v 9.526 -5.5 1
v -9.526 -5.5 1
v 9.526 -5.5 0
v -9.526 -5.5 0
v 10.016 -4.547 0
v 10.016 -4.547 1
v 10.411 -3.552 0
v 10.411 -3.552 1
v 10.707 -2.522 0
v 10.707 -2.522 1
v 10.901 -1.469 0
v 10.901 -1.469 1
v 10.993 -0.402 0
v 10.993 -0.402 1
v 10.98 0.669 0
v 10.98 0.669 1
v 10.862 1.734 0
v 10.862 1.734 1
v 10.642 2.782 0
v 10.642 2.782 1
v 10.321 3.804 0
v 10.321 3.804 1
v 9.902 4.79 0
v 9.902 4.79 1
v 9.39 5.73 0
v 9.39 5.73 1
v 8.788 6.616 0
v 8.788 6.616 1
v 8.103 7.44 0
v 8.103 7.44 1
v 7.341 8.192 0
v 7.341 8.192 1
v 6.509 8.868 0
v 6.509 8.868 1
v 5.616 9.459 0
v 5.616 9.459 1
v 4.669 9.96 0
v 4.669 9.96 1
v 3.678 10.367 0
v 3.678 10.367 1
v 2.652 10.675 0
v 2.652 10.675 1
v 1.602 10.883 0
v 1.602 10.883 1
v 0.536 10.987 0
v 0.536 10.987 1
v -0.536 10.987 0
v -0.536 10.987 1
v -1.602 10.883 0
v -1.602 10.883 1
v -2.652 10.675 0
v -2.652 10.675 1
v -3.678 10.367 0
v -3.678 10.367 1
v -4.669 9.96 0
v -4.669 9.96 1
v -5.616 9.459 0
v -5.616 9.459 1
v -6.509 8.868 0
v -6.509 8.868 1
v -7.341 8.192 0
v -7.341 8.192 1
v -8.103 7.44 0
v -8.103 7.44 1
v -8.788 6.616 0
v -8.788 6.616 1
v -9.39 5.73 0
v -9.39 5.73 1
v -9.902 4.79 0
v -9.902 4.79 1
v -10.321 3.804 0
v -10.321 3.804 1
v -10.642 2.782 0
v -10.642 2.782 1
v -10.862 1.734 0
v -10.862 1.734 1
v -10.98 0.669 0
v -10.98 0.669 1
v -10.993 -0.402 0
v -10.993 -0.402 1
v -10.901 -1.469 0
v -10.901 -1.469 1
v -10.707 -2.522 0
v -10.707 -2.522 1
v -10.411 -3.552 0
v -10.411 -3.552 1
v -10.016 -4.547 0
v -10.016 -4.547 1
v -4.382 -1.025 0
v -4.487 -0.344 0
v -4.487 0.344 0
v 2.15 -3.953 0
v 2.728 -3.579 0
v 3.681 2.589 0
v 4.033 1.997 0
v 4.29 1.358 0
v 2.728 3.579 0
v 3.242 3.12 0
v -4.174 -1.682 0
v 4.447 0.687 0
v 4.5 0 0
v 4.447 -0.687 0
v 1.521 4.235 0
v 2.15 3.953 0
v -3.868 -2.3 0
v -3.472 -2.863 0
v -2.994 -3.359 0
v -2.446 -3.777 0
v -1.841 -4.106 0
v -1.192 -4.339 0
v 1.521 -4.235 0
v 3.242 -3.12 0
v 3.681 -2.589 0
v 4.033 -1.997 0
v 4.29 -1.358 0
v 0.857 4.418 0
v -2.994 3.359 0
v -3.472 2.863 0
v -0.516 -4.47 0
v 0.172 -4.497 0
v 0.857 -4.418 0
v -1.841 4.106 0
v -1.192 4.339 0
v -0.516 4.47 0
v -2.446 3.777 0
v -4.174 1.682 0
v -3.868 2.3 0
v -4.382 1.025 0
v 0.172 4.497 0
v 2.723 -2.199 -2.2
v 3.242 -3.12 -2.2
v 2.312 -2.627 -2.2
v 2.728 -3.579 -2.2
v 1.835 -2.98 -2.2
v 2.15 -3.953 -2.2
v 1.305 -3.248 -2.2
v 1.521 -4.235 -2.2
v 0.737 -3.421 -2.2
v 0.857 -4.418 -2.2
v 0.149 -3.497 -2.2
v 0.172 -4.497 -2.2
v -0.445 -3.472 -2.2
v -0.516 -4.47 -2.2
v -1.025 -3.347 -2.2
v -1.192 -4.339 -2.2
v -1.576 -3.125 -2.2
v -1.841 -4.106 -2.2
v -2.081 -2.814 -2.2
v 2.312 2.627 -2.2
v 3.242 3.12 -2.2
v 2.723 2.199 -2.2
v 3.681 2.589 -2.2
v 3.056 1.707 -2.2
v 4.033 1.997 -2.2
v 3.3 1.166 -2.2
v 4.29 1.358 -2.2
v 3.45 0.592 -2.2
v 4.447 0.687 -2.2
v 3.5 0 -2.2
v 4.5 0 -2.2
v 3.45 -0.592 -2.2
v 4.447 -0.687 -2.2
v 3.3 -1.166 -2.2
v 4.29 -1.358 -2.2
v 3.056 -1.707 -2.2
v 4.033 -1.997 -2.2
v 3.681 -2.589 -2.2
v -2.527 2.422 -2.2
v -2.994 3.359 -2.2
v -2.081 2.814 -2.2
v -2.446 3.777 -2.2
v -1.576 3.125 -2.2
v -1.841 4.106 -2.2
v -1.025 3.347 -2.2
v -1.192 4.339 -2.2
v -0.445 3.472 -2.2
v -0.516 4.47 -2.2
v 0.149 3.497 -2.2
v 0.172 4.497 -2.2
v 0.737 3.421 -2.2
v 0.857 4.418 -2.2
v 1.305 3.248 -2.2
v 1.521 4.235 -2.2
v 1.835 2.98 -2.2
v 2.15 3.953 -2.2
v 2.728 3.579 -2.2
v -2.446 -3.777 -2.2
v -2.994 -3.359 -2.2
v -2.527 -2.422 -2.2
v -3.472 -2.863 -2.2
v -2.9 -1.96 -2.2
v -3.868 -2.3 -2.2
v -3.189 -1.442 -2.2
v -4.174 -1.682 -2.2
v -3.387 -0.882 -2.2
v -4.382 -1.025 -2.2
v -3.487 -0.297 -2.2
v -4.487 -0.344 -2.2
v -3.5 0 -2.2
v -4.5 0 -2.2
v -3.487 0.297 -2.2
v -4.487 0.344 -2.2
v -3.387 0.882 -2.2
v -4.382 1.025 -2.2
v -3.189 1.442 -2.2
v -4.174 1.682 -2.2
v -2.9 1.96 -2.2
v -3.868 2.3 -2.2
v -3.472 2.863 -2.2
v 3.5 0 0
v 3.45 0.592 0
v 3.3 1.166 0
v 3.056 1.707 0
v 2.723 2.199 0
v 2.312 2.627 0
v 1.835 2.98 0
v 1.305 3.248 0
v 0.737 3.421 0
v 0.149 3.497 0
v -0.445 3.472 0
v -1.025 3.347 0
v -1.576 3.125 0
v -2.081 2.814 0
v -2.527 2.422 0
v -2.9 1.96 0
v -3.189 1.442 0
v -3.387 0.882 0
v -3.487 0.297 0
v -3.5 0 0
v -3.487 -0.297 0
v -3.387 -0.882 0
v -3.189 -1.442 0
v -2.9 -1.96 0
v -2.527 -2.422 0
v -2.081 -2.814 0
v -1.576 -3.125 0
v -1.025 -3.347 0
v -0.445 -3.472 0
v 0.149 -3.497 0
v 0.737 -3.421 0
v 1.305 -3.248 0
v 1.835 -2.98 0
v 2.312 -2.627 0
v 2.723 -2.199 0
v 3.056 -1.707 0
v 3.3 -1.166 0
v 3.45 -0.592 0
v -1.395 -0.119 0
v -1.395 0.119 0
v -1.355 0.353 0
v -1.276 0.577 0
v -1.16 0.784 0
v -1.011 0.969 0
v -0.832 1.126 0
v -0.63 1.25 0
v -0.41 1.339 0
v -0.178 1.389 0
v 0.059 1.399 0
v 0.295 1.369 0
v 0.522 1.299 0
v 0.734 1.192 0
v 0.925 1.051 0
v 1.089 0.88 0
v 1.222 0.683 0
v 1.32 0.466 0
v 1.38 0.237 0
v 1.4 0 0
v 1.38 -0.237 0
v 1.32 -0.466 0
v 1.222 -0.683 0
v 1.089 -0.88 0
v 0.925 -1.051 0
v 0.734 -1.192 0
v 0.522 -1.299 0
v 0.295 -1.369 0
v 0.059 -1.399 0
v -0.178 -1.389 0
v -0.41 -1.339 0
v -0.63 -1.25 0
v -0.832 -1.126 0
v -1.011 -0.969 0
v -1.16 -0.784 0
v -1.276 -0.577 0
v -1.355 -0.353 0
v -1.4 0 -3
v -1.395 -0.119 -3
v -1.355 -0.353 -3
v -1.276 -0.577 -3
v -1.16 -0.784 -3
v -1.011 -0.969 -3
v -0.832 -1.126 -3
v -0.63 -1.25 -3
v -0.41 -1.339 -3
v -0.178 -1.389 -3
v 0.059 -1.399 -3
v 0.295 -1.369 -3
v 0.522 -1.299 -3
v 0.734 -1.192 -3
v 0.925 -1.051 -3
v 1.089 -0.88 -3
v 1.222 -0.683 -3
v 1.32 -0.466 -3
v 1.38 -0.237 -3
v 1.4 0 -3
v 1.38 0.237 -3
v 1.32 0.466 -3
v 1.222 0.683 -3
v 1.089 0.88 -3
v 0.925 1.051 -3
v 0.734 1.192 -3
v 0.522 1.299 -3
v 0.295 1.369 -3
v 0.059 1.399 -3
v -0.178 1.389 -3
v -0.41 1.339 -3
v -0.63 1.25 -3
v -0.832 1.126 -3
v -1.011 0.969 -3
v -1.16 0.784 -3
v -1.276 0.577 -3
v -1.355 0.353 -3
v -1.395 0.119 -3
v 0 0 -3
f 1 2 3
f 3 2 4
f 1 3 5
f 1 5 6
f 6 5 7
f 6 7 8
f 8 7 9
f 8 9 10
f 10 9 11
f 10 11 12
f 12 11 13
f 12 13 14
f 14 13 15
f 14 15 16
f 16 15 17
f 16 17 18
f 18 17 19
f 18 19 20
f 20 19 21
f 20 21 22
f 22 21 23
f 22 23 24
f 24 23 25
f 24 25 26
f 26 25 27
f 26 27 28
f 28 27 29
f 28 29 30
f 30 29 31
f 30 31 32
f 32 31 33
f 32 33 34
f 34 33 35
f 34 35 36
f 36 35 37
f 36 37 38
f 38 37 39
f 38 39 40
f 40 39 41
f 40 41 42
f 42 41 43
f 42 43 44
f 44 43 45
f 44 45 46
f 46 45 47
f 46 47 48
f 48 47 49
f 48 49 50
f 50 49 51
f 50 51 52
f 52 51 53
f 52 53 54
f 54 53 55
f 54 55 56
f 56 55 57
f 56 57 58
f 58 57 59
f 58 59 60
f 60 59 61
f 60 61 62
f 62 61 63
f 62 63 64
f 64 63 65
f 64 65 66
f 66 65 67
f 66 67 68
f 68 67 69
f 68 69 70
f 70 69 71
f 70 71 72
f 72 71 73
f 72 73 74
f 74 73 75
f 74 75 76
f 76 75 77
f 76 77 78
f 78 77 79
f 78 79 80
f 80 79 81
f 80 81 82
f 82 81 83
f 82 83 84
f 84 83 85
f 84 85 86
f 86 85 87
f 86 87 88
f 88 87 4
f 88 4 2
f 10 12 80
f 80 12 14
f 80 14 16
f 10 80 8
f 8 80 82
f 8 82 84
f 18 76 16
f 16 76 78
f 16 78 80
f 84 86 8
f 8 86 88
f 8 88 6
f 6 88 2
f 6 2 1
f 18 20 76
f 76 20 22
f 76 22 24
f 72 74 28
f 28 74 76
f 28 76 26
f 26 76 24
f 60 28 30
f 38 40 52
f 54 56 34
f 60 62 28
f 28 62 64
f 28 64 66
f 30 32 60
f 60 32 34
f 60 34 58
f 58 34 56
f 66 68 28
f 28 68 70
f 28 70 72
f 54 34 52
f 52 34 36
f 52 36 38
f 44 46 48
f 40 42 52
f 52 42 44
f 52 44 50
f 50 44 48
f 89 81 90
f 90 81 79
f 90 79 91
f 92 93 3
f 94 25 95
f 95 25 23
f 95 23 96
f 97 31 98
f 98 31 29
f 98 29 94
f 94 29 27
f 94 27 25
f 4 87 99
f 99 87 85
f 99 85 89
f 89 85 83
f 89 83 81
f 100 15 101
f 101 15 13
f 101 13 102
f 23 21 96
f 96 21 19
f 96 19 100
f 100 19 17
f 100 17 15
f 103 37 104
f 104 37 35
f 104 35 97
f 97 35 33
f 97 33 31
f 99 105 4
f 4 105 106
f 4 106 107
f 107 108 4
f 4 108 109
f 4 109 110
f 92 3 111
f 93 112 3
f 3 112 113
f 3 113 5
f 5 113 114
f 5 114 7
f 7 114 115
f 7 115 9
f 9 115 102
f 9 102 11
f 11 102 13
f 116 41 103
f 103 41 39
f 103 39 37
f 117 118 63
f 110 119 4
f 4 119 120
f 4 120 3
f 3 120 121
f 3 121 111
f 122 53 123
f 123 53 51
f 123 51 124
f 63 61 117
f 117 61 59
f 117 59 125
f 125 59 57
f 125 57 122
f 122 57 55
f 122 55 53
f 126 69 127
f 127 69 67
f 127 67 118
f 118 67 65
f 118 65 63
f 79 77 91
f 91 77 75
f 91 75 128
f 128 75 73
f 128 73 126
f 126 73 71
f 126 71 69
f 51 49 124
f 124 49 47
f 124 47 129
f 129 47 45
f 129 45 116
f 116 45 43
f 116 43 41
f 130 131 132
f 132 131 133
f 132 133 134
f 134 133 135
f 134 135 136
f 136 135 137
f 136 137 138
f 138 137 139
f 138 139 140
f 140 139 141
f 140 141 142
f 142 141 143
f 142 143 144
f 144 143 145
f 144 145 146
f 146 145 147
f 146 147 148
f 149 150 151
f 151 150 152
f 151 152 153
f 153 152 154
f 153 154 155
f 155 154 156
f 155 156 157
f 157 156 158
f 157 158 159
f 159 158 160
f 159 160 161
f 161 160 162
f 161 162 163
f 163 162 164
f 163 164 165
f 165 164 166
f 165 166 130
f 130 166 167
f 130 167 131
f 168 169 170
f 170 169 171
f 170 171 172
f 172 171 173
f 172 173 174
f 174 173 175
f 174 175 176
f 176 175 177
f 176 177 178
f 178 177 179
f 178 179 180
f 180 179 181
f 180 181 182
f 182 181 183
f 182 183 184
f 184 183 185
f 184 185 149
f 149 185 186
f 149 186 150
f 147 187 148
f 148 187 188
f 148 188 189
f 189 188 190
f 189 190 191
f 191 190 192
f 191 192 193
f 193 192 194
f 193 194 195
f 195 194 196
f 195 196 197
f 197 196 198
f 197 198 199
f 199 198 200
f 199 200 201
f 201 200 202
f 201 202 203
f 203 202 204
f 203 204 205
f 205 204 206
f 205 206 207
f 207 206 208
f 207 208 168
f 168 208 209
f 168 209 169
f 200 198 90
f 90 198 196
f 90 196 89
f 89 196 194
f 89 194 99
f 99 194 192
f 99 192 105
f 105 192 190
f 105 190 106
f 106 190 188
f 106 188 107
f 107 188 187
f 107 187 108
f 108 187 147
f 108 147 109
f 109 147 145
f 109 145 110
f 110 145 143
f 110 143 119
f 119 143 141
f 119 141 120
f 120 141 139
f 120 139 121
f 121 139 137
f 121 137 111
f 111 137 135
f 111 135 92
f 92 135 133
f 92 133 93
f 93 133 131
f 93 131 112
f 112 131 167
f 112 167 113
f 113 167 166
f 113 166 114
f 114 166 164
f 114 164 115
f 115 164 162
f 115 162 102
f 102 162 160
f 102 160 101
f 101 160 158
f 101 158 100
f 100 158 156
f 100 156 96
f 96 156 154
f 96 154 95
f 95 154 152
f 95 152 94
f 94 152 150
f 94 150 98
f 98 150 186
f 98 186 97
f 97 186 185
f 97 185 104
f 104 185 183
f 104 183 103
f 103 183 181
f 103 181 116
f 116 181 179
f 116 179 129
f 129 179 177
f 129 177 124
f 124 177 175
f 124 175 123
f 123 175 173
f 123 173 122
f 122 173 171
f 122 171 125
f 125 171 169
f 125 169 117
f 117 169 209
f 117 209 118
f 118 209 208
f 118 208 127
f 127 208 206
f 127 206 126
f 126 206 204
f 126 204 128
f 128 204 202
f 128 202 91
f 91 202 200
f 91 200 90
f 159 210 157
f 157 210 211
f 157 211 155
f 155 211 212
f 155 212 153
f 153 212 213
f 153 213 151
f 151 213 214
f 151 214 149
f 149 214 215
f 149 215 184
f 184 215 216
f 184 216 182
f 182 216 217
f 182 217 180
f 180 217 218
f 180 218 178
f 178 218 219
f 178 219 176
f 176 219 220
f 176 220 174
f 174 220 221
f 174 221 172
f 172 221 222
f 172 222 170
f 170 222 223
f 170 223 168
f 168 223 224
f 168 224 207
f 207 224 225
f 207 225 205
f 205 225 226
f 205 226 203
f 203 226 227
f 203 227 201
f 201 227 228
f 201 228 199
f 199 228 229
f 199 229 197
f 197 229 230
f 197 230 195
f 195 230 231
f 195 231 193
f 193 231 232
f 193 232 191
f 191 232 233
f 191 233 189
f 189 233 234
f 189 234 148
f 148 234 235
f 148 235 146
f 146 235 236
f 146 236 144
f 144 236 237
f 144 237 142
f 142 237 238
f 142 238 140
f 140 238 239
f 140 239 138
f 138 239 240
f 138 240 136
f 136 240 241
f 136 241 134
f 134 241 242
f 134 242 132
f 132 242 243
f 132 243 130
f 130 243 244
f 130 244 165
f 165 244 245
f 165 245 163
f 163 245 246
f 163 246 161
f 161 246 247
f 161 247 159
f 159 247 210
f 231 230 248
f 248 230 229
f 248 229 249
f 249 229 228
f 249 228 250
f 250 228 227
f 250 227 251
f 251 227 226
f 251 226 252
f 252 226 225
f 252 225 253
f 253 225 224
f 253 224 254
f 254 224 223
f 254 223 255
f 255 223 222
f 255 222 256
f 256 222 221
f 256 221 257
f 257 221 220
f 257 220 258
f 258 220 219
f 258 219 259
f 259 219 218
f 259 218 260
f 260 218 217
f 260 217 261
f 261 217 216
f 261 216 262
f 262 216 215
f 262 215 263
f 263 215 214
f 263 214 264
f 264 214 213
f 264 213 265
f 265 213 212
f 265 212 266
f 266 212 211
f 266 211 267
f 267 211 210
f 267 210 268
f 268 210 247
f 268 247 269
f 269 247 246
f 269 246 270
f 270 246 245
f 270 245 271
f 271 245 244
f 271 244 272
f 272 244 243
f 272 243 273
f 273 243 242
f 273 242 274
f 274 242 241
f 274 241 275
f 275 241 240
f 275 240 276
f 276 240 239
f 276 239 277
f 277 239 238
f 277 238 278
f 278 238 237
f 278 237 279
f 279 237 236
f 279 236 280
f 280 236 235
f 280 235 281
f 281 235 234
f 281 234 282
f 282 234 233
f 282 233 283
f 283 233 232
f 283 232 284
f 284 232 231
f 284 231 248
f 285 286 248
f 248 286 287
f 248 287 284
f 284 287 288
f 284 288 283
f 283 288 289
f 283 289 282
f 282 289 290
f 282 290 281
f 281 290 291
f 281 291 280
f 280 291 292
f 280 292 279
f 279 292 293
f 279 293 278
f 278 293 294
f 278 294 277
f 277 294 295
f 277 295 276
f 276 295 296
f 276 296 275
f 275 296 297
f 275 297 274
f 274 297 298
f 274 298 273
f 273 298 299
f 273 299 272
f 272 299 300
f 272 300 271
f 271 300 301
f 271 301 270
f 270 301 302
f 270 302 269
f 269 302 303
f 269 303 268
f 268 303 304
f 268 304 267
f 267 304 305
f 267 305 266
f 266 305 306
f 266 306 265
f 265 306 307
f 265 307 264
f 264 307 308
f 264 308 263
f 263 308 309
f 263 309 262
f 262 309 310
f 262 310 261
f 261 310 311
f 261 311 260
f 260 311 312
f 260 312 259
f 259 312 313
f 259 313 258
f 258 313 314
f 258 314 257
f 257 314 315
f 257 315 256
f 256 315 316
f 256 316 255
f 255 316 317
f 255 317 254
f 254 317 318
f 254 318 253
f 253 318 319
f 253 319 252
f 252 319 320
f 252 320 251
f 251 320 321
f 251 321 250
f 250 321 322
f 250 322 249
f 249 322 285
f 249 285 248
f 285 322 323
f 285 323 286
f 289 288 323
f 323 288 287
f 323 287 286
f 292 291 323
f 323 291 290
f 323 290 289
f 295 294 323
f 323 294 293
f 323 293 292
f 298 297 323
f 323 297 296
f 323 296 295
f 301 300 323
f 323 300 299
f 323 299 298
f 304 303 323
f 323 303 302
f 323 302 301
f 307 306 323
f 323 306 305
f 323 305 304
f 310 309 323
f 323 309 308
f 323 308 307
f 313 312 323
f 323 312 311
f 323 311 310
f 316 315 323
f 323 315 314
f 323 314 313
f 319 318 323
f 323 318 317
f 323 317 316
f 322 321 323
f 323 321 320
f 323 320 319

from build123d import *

# Parameters (mm, degrees)
BOSS_EXTRUDE1_DEPTH = 1
SKETCH3_R           = 4.5
SKETCH3_R_2         = 3.5
BOSS_EXTRUDE2_DEPTH = 2.2
SKETCH4_R           = 1.4
BOSS_EXTRUDE3_DEPTH = 3


with BuildPart() as part:
    # Sketch1 → Boss-Extrude1 (new body)
    with BuildSketch(Plane.XY):
        with BuildLine():
            Line((-9.526279442, -5.5), (9.526279442, -5.5))
            ThreePointArc((9.526279442, -5.5), (0, 11), (-9.526279442, -5.5))
        make_face()
    extrude(amount=BOSS_EXTRUDE1_DEPTH)

    # Sketch3 → Boss-Extrude2 (add)
    with BuildSketch(Plane(origin=(0, 0, 0), x_dir=(-1, 0, 0), z_dir=(0, 0, -1))):
        Circle(SKETCH3_R)
        Circle(SKETCH3_R_2, mode=Mode.SUBTRACT)
    extrude(amount=BOSS_EXTRUDE2_DEPTH)

    # Sketch4 → Boss-Extrude3 (add)
    with BuildSketch(Plane(origin=(0, 0, 0), x_dir=(-1, 0, 0), z_dir=(0, 0, -1))):
        Circle(SKETCH4_R)
    extrude(amount=BOSS_EXTRUDE3_DEPTH)


solid = part.part
